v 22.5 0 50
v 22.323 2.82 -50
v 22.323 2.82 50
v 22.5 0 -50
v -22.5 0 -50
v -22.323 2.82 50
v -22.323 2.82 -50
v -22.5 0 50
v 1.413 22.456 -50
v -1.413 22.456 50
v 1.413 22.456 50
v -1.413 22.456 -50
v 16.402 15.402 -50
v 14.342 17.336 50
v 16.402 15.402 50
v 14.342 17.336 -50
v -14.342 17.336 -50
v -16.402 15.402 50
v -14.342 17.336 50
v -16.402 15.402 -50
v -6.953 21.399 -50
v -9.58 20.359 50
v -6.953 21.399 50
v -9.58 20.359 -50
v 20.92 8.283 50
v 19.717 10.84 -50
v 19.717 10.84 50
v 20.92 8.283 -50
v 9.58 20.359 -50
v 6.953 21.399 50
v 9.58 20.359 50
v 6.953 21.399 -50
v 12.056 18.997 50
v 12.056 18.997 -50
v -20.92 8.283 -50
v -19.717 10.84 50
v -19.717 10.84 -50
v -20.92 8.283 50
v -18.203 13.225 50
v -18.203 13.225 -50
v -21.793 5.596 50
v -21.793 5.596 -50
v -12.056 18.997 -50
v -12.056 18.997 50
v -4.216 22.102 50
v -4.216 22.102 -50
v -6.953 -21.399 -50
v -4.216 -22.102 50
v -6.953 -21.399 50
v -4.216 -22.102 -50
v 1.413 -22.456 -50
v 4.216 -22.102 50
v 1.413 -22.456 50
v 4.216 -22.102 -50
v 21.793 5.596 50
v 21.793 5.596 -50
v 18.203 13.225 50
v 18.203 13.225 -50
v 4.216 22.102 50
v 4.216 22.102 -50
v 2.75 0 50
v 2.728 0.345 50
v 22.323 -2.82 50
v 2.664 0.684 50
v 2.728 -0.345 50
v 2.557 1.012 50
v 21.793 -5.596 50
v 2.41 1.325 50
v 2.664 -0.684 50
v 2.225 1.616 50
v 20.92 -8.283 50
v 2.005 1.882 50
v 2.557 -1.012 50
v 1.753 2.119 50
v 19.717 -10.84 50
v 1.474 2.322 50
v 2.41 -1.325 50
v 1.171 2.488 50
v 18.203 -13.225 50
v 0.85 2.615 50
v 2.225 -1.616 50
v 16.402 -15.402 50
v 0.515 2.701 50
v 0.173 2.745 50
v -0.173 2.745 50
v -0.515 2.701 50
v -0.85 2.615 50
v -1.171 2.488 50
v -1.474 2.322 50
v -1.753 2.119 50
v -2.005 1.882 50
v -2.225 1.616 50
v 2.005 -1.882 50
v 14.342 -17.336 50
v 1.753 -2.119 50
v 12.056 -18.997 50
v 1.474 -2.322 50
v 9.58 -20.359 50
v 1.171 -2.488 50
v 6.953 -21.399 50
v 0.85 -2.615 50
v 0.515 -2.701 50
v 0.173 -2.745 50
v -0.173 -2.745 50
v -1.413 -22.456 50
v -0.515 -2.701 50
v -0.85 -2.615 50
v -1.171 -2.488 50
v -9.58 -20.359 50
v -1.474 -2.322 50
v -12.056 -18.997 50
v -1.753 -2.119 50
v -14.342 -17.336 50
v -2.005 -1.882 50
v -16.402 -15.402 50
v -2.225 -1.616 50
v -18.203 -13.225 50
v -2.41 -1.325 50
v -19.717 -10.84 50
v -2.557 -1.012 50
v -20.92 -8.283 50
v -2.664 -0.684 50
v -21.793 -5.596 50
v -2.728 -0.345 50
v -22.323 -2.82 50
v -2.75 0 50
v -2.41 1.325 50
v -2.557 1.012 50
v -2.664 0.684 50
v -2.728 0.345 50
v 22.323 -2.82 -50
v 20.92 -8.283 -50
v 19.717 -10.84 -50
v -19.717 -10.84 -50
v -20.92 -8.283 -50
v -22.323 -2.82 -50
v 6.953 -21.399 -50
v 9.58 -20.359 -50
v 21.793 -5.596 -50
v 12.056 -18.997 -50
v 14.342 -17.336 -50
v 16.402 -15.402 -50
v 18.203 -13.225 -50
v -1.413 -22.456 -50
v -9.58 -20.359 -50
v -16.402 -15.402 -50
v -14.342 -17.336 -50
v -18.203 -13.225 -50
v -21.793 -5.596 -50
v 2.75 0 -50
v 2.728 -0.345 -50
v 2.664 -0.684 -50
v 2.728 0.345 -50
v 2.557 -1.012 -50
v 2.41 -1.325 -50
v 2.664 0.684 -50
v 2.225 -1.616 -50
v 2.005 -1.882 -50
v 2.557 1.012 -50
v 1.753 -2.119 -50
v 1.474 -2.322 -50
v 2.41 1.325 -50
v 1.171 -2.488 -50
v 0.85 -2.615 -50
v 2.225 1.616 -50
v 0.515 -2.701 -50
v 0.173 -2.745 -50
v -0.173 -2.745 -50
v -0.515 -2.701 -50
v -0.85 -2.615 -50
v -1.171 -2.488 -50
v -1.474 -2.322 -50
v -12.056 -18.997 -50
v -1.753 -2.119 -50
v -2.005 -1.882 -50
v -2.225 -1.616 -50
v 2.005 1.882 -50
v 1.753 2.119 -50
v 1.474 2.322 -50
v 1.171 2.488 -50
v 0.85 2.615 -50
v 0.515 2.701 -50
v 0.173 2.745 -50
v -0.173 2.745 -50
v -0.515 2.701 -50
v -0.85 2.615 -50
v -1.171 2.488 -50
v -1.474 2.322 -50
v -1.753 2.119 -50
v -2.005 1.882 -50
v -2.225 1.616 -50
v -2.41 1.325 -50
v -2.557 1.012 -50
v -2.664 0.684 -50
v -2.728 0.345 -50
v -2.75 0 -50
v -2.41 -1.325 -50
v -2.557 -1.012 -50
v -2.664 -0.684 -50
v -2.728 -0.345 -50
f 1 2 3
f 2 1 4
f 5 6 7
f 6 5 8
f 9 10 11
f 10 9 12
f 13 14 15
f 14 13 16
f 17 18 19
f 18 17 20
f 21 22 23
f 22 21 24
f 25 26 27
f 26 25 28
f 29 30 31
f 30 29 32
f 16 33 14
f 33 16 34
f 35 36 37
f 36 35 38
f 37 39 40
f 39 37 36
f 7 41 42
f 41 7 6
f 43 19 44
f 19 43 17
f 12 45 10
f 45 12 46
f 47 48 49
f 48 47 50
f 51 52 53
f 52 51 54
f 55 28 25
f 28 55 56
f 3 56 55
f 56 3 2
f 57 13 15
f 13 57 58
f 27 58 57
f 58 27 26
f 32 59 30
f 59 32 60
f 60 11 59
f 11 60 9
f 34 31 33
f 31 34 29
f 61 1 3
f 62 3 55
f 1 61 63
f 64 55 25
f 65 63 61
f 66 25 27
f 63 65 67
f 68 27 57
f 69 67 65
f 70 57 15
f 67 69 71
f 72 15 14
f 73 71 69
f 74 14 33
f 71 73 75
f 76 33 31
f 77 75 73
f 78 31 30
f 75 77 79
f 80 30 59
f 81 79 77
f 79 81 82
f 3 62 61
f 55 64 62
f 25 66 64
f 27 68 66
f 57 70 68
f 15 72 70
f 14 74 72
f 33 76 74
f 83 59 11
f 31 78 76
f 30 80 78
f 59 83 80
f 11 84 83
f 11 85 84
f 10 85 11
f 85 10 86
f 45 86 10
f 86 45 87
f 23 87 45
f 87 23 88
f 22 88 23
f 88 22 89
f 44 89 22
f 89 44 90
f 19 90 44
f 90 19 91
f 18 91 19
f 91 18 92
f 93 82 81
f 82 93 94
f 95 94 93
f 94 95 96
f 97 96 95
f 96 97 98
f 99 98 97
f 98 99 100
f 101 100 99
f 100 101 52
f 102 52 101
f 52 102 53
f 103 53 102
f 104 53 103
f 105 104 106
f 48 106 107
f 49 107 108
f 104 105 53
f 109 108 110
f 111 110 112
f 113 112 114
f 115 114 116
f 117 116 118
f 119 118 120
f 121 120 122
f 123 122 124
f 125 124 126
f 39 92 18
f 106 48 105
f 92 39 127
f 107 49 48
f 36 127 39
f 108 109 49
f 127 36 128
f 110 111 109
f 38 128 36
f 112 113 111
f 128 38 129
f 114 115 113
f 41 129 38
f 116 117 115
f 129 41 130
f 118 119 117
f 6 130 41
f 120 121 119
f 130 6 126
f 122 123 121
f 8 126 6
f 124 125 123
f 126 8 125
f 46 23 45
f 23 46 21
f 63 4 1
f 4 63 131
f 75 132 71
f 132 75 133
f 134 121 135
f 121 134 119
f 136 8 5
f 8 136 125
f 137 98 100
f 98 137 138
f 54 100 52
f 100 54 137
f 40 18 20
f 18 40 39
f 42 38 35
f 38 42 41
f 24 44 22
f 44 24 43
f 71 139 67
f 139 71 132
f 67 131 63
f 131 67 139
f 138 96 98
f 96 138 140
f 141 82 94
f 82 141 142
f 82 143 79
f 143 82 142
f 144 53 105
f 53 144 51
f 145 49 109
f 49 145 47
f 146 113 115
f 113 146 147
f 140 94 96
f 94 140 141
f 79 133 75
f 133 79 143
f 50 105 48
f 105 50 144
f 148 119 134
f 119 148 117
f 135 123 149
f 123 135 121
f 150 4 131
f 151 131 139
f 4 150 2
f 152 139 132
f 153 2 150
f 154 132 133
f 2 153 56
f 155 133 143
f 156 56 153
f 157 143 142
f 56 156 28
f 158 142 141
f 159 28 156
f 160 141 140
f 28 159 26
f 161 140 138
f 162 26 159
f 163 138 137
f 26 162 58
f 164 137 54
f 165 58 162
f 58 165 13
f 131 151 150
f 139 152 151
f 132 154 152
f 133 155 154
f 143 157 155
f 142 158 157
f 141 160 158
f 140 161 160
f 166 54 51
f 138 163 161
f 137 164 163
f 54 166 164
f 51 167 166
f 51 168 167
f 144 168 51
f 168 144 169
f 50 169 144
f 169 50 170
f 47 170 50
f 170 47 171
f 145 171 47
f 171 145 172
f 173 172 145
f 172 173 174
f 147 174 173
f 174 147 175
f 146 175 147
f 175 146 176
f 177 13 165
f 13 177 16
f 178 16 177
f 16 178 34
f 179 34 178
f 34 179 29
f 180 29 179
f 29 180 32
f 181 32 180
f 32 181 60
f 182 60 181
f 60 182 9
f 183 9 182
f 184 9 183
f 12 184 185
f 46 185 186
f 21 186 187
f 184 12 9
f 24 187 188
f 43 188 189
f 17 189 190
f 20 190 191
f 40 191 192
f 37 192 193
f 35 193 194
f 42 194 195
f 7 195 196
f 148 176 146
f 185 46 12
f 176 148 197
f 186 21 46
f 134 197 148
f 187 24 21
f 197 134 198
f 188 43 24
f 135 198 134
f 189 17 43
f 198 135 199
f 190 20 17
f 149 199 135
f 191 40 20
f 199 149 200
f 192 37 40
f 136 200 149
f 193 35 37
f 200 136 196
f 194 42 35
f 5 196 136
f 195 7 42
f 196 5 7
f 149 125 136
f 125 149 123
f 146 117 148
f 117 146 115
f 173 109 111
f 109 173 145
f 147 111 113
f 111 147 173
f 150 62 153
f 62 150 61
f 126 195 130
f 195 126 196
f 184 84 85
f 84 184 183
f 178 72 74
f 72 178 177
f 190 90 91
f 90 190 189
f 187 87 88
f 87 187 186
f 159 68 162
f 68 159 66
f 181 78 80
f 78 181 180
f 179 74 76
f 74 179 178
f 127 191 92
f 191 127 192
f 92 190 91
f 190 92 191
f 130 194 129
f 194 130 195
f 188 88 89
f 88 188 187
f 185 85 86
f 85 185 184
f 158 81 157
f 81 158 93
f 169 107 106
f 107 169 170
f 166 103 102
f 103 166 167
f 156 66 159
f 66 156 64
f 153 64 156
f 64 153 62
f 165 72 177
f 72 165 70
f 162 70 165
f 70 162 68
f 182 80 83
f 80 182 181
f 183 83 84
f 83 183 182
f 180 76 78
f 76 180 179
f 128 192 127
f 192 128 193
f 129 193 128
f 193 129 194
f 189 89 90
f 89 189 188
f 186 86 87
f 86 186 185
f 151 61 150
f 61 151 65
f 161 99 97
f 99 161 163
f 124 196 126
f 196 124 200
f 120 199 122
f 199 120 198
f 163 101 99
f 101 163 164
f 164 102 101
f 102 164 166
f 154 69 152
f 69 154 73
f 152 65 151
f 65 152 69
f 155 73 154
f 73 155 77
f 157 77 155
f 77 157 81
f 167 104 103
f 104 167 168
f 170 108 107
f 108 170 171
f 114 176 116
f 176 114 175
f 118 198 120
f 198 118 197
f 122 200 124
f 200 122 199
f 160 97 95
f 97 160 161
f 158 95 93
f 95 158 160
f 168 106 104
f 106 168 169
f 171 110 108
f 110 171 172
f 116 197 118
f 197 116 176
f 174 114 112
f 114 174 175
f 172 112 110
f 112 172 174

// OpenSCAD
$fn = 50;


difference() {
	union() {
		translate(v = [0, 0, -50.0000000000]) {
			cylinder(h = 100, r = 22.5000000000);
		}
	}
	union() {
		translate(v = [0, 0, -100.0000000000]) {
			cylinder(h = 200, r = 2.7500000000);
		}
	}
}
